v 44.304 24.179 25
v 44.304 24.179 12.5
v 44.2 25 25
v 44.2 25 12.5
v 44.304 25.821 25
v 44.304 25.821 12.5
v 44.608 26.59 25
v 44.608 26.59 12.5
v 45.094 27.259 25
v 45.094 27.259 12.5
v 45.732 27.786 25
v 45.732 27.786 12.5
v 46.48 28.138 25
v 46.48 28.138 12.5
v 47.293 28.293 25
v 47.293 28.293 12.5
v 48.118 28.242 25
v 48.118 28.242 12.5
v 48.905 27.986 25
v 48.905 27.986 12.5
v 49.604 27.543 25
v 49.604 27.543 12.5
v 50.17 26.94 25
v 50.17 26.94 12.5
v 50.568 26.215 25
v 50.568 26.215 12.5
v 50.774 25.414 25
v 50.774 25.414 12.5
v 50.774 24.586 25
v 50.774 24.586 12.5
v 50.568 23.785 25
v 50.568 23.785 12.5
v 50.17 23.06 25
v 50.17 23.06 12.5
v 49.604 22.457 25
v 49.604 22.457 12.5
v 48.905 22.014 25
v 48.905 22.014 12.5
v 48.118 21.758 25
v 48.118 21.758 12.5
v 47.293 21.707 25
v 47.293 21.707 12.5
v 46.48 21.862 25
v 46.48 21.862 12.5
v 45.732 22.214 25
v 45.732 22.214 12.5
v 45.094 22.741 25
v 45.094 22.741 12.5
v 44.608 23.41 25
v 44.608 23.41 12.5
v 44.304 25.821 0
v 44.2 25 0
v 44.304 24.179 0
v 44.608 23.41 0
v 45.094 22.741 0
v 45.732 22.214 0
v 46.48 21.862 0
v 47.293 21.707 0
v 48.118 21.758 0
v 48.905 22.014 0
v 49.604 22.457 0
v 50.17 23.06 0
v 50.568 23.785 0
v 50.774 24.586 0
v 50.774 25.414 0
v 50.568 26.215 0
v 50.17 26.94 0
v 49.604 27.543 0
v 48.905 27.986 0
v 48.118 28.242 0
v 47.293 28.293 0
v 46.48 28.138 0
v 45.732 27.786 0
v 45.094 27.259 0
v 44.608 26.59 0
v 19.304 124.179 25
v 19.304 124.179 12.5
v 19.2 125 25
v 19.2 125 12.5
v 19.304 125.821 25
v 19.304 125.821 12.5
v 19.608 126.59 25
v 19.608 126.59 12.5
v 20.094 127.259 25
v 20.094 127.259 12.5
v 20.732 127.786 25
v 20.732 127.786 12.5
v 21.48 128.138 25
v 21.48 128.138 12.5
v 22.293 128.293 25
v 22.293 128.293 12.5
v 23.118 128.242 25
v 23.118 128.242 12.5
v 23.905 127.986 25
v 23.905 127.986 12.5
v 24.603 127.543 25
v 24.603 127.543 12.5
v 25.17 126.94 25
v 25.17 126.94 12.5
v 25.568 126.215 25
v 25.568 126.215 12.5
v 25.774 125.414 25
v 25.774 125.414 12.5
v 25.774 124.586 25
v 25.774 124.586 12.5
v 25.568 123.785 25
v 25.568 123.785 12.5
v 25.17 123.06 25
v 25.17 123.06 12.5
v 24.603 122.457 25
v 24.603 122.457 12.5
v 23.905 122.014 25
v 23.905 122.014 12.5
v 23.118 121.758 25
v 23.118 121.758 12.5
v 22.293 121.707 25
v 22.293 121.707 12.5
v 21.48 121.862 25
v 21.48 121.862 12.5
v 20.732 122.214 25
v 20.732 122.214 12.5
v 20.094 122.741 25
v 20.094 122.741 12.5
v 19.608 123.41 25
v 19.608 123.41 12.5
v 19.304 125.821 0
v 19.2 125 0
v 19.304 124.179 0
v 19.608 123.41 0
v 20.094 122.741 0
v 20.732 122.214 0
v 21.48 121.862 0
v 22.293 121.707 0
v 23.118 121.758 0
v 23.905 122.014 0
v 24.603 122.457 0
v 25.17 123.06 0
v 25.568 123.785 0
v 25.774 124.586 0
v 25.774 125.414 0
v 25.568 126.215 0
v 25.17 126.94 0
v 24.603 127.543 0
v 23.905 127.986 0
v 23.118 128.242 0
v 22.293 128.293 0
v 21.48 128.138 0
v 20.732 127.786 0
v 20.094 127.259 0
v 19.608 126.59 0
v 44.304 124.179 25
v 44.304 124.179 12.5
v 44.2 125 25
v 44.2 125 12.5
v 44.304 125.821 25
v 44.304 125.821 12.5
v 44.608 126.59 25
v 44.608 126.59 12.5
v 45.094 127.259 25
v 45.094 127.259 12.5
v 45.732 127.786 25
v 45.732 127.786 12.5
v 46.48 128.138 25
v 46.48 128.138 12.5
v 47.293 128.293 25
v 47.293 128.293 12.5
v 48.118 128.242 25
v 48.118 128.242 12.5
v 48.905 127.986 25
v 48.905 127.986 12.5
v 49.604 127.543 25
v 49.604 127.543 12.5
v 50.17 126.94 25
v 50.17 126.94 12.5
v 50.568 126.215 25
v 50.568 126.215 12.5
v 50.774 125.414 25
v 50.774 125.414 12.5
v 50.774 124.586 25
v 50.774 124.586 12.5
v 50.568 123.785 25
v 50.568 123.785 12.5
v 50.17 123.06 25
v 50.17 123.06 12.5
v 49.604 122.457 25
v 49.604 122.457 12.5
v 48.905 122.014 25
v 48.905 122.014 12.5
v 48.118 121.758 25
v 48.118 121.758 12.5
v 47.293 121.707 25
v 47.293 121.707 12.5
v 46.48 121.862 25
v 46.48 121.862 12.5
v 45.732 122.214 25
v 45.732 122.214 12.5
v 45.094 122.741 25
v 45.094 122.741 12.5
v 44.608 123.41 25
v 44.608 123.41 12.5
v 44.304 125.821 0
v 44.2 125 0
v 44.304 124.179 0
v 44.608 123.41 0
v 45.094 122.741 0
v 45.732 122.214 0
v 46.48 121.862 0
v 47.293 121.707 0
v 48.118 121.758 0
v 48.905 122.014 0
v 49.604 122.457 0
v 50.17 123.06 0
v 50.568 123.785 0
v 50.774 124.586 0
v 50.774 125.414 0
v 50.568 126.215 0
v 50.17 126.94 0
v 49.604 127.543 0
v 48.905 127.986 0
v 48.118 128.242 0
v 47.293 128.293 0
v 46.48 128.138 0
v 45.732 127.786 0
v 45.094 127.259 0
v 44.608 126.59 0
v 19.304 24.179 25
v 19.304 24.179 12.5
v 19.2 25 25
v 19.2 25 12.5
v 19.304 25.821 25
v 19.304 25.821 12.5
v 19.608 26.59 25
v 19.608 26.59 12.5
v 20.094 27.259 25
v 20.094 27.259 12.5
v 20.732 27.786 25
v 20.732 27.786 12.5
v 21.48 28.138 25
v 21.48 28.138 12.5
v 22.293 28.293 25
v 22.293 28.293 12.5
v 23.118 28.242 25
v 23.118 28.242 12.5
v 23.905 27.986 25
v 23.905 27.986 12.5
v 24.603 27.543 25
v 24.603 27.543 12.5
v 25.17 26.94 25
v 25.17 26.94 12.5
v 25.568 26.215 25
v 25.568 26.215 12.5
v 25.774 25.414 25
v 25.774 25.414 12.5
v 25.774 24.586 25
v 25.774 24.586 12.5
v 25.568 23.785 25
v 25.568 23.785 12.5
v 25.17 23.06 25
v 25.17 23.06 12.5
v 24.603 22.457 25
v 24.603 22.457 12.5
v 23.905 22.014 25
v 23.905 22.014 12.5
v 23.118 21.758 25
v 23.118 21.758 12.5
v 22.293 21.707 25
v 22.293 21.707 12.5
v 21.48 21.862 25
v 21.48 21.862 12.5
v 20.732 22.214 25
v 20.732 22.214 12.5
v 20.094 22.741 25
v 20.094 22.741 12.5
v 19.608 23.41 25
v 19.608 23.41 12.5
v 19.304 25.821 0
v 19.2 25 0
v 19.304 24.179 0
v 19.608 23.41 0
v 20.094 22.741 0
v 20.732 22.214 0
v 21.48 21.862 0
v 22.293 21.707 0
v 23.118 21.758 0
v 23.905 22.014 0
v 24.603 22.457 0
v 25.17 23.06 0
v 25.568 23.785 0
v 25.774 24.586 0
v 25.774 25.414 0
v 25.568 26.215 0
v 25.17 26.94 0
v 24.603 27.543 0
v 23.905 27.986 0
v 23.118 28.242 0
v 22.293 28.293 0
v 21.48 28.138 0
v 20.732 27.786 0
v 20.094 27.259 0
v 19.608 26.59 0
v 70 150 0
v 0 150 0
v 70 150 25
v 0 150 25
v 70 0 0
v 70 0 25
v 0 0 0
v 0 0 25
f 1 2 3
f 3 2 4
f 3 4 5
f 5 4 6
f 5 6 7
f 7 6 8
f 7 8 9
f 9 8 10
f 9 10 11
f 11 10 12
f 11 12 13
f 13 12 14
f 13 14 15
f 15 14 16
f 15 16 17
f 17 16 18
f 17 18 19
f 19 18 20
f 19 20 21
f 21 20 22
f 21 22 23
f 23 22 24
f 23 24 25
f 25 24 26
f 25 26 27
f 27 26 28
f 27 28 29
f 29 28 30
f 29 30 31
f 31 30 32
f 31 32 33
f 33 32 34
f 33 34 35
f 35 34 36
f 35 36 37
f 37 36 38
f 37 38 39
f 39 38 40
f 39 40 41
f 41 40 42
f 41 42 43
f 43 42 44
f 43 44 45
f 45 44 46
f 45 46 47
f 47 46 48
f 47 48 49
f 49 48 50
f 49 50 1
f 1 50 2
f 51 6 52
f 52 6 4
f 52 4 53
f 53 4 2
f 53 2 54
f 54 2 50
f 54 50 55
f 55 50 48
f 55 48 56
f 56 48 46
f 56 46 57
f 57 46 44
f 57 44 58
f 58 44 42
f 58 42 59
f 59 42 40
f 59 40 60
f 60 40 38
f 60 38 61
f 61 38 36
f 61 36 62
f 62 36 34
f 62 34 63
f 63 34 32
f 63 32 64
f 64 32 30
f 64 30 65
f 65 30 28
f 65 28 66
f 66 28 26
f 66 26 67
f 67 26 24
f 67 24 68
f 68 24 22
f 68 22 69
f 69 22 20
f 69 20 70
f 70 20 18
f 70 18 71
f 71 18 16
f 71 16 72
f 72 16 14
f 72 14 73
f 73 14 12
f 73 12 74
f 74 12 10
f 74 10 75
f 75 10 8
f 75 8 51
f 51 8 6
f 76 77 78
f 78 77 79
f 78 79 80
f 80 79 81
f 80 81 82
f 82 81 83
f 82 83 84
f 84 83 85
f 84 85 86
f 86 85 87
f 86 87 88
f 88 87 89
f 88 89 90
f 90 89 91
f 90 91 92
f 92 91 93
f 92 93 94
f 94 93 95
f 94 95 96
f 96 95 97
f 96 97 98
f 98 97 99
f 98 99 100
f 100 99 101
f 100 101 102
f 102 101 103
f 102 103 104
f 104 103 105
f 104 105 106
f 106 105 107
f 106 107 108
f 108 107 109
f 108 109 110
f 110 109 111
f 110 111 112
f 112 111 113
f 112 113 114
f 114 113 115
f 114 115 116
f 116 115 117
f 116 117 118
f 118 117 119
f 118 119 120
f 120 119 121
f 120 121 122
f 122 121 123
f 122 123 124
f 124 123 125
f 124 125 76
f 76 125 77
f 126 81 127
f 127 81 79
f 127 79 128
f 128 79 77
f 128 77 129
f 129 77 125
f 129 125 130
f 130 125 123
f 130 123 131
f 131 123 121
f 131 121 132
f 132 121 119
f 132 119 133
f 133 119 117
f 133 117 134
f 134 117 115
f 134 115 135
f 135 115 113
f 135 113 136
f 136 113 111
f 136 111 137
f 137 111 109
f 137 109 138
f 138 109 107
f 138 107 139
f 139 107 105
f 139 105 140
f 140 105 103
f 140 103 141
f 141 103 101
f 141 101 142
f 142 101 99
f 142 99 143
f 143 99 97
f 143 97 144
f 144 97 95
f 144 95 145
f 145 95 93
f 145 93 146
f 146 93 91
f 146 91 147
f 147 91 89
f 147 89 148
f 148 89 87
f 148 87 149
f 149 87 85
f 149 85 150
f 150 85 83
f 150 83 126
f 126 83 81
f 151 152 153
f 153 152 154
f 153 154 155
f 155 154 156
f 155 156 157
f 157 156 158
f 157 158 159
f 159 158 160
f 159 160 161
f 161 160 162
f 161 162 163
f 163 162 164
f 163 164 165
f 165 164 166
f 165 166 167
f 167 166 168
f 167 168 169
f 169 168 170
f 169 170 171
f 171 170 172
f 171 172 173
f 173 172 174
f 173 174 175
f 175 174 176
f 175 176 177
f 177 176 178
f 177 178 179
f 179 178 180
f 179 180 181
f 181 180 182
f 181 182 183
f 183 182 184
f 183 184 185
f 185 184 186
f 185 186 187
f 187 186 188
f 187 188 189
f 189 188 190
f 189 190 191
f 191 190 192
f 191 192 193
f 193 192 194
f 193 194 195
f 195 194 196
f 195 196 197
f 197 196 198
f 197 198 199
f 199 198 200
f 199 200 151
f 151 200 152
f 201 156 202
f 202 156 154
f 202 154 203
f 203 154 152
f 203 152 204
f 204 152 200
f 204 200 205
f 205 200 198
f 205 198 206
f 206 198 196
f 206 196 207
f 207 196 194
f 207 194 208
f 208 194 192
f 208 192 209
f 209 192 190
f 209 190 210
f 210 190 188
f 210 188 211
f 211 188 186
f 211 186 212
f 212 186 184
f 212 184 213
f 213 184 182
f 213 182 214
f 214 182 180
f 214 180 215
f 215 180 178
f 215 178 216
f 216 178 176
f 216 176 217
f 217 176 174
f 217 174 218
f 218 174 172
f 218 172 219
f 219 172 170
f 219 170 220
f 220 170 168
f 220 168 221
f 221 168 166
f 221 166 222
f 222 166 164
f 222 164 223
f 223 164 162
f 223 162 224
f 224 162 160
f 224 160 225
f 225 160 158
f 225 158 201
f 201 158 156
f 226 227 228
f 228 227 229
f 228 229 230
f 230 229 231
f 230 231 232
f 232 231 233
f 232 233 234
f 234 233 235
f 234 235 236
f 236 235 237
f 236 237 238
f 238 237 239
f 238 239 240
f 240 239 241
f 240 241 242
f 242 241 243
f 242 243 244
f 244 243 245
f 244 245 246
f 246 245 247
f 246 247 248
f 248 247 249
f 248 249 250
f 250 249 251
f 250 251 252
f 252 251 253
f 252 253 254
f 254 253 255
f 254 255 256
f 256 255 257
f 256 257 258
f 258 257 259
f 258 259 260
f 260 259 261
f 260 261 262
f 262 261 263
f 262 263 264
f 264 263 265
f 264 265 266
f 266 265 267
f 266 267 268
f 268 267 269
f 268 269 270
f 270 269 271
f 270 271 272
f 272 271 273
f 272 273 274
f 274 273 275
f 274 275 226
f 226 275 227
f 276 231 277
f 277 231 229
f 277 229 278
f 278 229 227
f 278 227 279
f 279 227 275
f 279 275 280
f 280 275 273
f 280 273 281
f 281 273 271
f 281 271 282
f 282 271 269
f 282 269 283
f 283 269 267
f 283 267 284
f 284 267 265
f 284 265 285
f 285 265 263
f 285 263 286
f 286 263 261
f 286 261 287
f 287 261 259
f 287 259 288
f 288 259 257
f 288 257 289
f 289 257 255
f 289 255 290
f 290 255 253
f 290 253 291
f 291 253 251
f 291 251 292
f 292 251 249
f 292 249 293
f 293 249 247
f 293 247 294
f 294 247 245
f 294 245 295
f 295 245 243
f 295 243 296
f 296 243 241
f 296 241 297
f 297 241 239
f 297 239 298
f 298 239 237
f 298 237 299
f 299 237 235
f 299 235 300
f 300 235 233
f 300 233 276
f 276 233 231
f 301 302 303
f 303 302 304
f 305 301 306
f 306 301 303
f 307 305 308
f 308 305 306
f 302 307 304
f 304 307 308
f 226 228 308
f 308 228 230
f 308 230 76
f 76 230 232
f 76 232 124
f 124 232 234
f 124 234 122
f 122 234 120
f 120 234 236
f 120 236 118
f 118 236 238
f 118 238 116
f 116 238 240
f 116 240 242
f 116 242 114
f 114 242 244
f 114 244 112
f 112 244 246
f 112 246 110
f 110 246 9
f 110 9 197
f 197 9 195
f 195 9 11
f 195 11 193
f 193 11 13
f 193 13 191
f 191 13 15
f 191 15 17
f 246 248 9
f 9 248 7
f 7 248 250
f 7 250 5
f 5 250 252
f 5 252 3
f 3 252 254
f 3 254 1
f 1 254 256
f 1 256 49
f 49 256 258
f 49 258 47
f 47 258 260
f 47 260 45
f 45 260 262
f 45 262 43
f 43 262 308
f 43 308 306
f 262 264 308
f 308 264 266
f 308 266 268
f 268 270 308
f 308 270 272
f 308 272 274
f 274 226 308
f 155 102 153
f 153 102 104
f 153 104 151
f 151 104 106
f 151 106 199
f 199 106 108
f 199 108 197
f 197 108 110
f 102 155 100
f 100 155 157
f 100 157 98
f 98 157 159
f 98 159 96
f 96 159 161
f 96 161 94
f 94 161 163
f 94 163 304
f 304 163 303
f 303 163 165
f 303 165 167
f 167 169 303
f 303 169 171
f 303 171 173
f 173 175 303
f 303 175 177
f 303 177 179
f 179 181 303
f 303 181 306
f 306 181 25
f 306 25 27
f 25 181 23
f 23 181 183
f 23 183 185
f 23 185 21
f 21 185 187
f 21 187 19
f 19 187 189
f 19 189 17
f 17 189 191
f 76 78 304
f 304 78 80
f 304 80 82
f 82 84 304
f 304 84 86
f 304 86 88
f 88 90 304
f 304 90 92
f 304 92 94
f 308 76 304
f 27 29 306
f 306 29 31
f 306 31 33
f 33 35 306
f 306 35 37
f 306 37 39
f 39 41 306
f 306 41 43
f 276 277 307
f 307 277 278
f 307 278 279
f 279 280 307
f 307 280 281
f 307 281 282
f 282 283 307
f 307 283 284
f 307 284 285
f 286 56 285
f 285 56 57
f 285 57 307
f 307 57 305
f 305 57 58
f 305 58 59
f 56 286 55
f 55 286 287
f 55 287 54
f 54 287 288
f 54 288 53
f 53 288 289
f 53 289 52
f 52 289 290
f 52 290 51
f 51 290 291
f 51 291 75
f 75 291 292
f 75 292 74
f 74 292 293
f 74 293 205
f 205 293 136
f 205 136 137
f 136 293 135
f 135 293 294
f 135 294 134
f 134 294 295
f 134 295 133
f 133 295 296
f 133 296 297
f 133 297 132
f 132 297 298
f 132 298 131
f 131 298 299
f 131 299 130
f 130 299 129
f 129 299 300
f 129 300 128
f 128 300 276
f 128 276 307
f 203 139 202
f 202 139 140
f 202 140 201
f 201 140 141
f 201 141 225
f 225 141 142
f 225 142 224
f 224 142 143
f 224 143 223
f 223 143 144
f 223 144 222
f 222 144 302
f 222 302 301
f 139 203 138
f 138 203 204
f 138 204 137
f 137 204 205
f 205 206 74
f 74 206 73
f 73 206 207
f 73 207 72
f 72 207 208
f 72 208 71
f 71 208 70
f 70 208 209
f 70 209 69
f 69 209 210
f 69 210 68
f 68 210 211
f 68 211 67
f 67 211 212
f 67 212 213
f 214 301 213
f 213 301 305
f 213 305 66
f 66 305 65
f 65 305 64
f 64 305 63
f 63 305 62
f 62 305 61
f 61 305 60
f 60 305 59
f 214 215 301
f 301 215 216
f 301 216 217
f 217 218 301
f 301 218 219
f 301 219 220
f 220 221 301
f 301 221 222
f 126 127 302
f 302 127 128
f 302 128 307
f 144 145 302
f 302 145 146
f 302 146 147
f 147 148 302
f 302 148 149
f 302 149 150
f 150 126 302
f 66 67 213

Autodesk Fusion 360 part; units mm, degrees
sketch "Sketch1" plane through (0, 0, 0) normal (0, 0, 1) x (1, 0, 0)
  line L0 (0, 0) -> (70, 0)
  line L1 (70, 0) -> (70, 150)
  line L2 (70, 150) -> (0, 150)
  line L3 (0, 150) -> (0, 0)
  circle A0 centre (22.5, 25) radius 3.3
  circle A1 centre (47.5, 25) radius 3.3
  circle A2 centre (22.5, 125) radius 3.3
  circle A3 centre (47.5, 125) radius 3.3
  line L4 (22.5, 25) -> (0, 25)
  line L5 (0, 25) -> (31, 25)
  line L6 (31, 25) -> (31, 37.5)
  line L7 (31, 37.5) -> (0, 37.5)
  line L8 (0, 37.5) -> (0, 25)
  line L9 (0, 25) -> (31, 25)
  line L10 (31, 25) -> (31, 12.5)
  line L11 (31, 12.5) -> (0, 12.5)
  line L12 (0, 12.5) -> (0, 25)
  line L13 (70, 37.5) -> (39, 37.5)
  line L14 (39, 37.5) -> (39, 12.5)
  line L15 (39, 12.5) -> (70, 12.5)
  line L16 (70, 12.5) -> (70, 37.5)
  line L17 (70, 137.5) -> (39, 137.5)
  line L18 (39, 137.5) -> (39, 112.5)
  line L19 (39, 112.5) -> (70, 112.5)
  line L20 (70, 112.5) -> (70, 137.5)
  line L21 (0, 137.5) -> (31, 137.5)
  line L22 (31, 137.5) -> (31, 112.5)
  line L23 (31, 112.5) -> (0, 112.5)
  line L24 (0, 112.5) -> (0, 137.5)
  point P0 (22.5, 25)
  point P1 (47.5, 25)
  point P2 (47.5, 125)
  point P3 (22.5, 125)
  dimension "d1" = 70
  dimension "d2" = 150
  dimension "d3" = 25
  dimension "d4" = 22.5
  dimension "d5" = 25
  dimension "d6" = 22.5
  dimension "d7" = 25
  dimension "d8" = 47.5
  dimension "d9" = 25
  dimension "d10" = 22.5
  dimension "d11" = 22.5
  dimension "d12" = 25
  dimension "d13" = 25
  dimension "d14" = 6.6
  dimension "d15" = 6.6
  dimension "d16" = 6.6
  dimension "d17" = 6.6
  dimension "d18" = 31
  dimension "d19" = 12.5
  dimension "d20" = 12.5
  dimension "d21" = 31
  dimension "d22" = 25
  dimension "d23" = 12.5
  dimension "d24" = 31
  dimension "d25" = 25
  dimension "d26" = 31
  dimension "d27" = 25
  dimension "d28" = 12.5
  dimension "d29" = 12.5
extrude "Extrude1" add sketch "Sketch1" along normal blind 25 contours L0 L1 L2 L3 L6 L7 L10 L11 L13 L14 L15 L17 L18 L19 L21 L22 L23 | L3 A0 L4 L5 L9 L10 L11 L12 | L1 L13 L14 L15 L16 | L3 A0 L4 L5 L6 L7 L8 L9 | L1 L17 L18 L19 L20 | L3 L21 L22 L23 L24
equation "d14 = 6 mm + 0.6 mm"
